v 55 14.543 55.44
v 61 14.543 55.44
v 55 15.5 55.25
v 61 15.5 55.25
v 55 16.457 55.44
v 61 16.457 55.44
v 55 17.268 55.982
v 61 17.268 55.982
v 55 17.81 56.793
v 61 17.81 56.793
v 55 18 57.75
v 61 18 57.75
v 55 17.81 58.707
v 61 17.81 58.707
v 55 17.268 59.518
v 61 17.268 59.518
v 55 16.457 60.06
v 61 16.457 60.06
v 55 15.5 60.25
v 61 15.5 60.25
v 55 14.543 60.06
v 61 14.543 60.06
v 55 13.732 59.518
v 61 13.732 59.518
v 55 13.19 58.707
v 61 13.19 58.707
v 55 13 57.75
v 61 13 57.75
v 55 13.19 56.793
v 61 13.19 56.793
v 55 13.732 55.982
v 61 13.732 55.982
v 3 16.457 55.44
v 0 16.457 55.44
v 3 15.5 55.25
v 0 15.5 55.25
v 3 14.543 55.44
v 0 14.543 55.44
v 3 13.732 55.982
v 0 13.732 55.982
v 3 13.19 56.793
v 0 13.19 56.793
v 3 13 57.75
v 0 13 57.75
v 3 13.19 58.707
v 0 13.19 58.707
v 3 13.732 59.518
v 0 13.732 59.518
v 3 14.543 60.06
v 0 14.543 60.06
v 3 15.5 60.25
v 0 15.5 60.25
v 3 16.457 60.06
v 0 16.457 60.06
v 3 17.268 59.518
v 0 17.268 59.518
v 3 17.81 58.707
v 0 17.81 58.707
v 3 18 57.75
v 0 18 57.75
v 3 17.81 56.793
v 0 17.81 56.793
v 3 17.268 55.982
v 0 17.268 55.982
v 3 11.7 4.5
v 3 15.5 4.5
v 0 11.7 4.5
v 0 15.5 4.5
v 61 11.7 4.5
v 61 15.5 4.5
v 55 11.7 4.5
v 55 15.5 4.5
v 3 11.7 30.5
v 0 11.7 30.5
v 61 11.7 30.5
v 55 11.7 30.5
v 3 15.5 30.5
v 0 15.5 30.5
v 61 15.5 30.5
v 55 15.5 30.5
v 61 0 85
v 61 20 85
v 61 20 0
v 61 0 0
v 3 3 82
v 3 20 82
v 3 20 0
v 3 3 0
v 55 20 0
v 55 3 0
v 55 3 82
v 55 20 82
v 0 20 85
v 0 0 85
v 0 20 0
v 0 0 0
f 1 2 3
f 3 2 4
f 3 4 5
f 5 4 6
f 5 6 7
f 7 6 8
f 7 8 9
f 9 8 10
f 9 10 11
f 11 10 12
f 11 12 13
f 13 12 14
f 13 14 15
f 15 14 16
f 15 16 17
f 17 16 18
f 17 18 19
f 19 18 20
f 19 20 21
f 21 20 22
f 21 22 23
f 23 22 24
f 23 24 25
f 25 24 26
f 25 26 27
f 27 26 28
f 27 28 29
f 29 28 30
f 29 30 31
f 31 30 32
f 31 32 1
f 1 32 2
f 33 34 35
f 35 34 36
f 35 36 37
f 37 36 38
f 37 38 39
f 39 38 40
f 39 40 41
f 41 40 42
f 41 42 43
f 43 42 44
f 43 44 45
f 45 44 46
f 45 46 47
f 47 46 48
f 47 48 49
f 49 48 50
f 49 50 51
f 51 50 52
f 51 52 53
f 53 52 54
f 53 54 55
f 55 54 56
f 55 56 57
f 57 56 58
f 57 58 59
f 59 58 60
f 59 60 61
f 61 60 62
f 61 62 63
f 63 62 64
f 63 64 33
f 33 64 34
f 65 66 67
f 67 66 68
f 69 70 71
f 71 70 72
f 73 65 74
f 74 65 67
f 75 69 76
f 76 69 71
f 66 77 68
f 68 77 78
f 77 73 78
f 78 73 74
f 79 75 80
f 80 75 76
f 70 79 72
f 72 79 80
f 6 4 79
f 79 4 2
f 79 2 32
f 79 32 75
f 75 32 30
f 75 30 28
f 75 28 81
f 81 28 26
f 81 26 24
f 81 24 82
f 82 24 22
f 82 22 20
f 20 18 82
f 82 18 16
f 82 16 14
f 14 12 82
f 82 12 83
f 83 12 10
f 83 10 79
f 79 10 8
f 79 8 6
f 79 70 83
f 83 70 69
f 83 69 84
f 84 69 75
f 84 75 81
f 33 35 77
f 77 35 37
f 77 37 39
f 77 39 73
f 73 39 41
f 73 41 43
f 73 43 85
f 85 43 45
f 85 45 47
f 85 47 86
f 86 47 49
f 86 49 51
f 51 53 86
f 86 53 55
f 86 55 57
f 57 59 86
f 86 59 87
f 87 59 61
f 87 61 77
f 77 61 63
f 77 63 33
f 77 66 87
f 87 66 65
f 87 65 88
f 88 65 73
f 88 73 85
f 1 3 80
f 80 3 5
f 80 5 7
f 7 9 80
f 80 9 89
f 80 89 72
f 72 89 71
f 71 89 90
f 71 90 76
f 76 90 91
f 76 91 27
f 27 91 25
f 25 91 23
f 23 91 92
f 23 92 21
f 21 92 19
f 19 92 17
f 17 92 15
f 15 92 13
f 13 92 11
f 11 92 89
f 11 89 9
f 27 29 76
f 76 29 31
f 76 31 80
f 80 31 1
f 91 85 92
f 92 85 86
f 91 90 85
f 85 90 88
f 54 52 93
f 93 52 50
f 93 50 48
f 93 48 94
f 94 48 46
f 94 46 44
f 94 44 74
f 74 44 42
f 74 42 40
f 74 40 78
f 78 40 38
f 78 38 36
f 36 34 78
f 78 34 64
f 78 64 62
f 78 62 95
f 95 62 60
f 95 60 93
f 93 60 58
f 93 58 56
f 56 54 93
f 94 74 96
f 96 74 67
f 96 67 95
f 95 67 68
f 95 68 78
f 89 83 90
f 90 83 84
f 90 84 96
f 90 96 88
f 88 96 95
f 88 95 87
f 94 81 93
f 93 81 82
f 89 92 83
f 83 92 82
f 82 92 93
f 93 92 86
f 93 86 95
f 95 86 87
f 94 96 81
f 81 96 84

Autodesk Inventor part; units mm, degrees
ref_plane "YZ Plane" through (0, 0, 0) normal (1, 0, 0) x (0, 1, 0)
ref_plane "XZ Plane" through (0, 0, 0) normal (0, 1, 0) x (-1, 0, 0)
ref_plane "XY Plane" through (0, 0, 0) normal (0, 0, 1) x (1, 0, 0)
sketch "Sketch2" plane through (0, 0, 0) normal (0, 1, 0) x (-1, 0, 0)
  line L0 (0, 0) -> (-58, 0)
  line L1 (-58, 0) -> (-58, 85)
  line L2 (-58, 85) -> (0, 85)
  line L3 (0, 85) -> (0, 0)
  dimension "d0" = 58
  dimension "d1" = 85
extrude "Extrusion1" add sketch "Sketch2" along normal blind 20
shell "Shell1" thickness 3 removed faces 1 at (19.3333, 20, 28.3333)
sketch "Sketch4" plane through (58, 0, 0) normal (0, 0, -1) x (-1, 0, 0)
  point P0 (58, 0)
sketch "Sketch5" plane through (3, 3, 3) normal (0, 0, 1) x (1, 0, 0)
  line L0 (0, 0) -> (0, 17) projected
  line L1 (0, 17) -> (52, 17) projected
  line L2 (0, 0) -> (52, 0)
  line L3 (52, 0) -> (52, 17)
  line L4 (52, 17) -> (0, 17)
  line L5 (0, 17) -> (0, 0)
  point P0 (-3, -3)
extrude "Extrusion3" cut sketch "Sketch5" against normal blind 10
sketch "Sketch6" plane through (0, 0, 0) normal (-1, 0, 0) x (0, 0, 1)
  line L0 (4.5, 15.5) -> (30.5, 15.5)
  line L1 (30.5, 15.5) -> (30.5, 11.7)
  line L2 (30.5, 11.7) -> (4.5, 11.7)
  line L3 (4.5, 11.7) -> (4.5, 15.5)
  line L4 (0, 0) -> (0, 20) projected
  line L5 (0, 0) -> (85, 0) projected
  line L6 (0, 20) -> (85, 20) projected
  dimension "d19" = 26
  dimension "d20" = 3.8
  dimension "d21" = 4.5
  dimension "d34" = 11.7
sketch "Sketch7" plane through (58, 0, 85) normal (1, 0, 0) x (0, 0, -1)
  line L0 (0, 0) -> (85, 0) projected
  line L1 (0, 20) -> (85, 20)
  line L2 (85, 20) -> (85, 0)
  line L3 (85, 0) -> (0, 0)
  line L4 (0, 0) -> (0, 20)
extrude "Extrusion5" add sketch "Sketch7" along normal blind 3
extrude "Extrusion6" cut sketch "Sketch6" against normal through all
sketch "Sketch8" plane through (0, 0, 0) normal (-1, 0, 0) x (0, 0, 1)
  circle A0 centre (57.75, 15.5) radius 2.5
  line L0 (0, 20) -> (85, 20) projected
  line L1 (85, 0) -> (85, 20) projected
  line L2 (30.5, 15.5) -> (30.5, 11.7) projected
  point P0 (0, 0)
  point P1 (30.5, 13.6)
  dimension "d29" = 5
  dimension "d32" = 4.5
  dimension "d35" = 54.5
  dimension "d36" = 27.25
extrude "Extrusion7" cut sketch "Sketch8" against normal through all
equation "\"d36\" = 0.5 * d35"
properties part number "breadboard box v04"
